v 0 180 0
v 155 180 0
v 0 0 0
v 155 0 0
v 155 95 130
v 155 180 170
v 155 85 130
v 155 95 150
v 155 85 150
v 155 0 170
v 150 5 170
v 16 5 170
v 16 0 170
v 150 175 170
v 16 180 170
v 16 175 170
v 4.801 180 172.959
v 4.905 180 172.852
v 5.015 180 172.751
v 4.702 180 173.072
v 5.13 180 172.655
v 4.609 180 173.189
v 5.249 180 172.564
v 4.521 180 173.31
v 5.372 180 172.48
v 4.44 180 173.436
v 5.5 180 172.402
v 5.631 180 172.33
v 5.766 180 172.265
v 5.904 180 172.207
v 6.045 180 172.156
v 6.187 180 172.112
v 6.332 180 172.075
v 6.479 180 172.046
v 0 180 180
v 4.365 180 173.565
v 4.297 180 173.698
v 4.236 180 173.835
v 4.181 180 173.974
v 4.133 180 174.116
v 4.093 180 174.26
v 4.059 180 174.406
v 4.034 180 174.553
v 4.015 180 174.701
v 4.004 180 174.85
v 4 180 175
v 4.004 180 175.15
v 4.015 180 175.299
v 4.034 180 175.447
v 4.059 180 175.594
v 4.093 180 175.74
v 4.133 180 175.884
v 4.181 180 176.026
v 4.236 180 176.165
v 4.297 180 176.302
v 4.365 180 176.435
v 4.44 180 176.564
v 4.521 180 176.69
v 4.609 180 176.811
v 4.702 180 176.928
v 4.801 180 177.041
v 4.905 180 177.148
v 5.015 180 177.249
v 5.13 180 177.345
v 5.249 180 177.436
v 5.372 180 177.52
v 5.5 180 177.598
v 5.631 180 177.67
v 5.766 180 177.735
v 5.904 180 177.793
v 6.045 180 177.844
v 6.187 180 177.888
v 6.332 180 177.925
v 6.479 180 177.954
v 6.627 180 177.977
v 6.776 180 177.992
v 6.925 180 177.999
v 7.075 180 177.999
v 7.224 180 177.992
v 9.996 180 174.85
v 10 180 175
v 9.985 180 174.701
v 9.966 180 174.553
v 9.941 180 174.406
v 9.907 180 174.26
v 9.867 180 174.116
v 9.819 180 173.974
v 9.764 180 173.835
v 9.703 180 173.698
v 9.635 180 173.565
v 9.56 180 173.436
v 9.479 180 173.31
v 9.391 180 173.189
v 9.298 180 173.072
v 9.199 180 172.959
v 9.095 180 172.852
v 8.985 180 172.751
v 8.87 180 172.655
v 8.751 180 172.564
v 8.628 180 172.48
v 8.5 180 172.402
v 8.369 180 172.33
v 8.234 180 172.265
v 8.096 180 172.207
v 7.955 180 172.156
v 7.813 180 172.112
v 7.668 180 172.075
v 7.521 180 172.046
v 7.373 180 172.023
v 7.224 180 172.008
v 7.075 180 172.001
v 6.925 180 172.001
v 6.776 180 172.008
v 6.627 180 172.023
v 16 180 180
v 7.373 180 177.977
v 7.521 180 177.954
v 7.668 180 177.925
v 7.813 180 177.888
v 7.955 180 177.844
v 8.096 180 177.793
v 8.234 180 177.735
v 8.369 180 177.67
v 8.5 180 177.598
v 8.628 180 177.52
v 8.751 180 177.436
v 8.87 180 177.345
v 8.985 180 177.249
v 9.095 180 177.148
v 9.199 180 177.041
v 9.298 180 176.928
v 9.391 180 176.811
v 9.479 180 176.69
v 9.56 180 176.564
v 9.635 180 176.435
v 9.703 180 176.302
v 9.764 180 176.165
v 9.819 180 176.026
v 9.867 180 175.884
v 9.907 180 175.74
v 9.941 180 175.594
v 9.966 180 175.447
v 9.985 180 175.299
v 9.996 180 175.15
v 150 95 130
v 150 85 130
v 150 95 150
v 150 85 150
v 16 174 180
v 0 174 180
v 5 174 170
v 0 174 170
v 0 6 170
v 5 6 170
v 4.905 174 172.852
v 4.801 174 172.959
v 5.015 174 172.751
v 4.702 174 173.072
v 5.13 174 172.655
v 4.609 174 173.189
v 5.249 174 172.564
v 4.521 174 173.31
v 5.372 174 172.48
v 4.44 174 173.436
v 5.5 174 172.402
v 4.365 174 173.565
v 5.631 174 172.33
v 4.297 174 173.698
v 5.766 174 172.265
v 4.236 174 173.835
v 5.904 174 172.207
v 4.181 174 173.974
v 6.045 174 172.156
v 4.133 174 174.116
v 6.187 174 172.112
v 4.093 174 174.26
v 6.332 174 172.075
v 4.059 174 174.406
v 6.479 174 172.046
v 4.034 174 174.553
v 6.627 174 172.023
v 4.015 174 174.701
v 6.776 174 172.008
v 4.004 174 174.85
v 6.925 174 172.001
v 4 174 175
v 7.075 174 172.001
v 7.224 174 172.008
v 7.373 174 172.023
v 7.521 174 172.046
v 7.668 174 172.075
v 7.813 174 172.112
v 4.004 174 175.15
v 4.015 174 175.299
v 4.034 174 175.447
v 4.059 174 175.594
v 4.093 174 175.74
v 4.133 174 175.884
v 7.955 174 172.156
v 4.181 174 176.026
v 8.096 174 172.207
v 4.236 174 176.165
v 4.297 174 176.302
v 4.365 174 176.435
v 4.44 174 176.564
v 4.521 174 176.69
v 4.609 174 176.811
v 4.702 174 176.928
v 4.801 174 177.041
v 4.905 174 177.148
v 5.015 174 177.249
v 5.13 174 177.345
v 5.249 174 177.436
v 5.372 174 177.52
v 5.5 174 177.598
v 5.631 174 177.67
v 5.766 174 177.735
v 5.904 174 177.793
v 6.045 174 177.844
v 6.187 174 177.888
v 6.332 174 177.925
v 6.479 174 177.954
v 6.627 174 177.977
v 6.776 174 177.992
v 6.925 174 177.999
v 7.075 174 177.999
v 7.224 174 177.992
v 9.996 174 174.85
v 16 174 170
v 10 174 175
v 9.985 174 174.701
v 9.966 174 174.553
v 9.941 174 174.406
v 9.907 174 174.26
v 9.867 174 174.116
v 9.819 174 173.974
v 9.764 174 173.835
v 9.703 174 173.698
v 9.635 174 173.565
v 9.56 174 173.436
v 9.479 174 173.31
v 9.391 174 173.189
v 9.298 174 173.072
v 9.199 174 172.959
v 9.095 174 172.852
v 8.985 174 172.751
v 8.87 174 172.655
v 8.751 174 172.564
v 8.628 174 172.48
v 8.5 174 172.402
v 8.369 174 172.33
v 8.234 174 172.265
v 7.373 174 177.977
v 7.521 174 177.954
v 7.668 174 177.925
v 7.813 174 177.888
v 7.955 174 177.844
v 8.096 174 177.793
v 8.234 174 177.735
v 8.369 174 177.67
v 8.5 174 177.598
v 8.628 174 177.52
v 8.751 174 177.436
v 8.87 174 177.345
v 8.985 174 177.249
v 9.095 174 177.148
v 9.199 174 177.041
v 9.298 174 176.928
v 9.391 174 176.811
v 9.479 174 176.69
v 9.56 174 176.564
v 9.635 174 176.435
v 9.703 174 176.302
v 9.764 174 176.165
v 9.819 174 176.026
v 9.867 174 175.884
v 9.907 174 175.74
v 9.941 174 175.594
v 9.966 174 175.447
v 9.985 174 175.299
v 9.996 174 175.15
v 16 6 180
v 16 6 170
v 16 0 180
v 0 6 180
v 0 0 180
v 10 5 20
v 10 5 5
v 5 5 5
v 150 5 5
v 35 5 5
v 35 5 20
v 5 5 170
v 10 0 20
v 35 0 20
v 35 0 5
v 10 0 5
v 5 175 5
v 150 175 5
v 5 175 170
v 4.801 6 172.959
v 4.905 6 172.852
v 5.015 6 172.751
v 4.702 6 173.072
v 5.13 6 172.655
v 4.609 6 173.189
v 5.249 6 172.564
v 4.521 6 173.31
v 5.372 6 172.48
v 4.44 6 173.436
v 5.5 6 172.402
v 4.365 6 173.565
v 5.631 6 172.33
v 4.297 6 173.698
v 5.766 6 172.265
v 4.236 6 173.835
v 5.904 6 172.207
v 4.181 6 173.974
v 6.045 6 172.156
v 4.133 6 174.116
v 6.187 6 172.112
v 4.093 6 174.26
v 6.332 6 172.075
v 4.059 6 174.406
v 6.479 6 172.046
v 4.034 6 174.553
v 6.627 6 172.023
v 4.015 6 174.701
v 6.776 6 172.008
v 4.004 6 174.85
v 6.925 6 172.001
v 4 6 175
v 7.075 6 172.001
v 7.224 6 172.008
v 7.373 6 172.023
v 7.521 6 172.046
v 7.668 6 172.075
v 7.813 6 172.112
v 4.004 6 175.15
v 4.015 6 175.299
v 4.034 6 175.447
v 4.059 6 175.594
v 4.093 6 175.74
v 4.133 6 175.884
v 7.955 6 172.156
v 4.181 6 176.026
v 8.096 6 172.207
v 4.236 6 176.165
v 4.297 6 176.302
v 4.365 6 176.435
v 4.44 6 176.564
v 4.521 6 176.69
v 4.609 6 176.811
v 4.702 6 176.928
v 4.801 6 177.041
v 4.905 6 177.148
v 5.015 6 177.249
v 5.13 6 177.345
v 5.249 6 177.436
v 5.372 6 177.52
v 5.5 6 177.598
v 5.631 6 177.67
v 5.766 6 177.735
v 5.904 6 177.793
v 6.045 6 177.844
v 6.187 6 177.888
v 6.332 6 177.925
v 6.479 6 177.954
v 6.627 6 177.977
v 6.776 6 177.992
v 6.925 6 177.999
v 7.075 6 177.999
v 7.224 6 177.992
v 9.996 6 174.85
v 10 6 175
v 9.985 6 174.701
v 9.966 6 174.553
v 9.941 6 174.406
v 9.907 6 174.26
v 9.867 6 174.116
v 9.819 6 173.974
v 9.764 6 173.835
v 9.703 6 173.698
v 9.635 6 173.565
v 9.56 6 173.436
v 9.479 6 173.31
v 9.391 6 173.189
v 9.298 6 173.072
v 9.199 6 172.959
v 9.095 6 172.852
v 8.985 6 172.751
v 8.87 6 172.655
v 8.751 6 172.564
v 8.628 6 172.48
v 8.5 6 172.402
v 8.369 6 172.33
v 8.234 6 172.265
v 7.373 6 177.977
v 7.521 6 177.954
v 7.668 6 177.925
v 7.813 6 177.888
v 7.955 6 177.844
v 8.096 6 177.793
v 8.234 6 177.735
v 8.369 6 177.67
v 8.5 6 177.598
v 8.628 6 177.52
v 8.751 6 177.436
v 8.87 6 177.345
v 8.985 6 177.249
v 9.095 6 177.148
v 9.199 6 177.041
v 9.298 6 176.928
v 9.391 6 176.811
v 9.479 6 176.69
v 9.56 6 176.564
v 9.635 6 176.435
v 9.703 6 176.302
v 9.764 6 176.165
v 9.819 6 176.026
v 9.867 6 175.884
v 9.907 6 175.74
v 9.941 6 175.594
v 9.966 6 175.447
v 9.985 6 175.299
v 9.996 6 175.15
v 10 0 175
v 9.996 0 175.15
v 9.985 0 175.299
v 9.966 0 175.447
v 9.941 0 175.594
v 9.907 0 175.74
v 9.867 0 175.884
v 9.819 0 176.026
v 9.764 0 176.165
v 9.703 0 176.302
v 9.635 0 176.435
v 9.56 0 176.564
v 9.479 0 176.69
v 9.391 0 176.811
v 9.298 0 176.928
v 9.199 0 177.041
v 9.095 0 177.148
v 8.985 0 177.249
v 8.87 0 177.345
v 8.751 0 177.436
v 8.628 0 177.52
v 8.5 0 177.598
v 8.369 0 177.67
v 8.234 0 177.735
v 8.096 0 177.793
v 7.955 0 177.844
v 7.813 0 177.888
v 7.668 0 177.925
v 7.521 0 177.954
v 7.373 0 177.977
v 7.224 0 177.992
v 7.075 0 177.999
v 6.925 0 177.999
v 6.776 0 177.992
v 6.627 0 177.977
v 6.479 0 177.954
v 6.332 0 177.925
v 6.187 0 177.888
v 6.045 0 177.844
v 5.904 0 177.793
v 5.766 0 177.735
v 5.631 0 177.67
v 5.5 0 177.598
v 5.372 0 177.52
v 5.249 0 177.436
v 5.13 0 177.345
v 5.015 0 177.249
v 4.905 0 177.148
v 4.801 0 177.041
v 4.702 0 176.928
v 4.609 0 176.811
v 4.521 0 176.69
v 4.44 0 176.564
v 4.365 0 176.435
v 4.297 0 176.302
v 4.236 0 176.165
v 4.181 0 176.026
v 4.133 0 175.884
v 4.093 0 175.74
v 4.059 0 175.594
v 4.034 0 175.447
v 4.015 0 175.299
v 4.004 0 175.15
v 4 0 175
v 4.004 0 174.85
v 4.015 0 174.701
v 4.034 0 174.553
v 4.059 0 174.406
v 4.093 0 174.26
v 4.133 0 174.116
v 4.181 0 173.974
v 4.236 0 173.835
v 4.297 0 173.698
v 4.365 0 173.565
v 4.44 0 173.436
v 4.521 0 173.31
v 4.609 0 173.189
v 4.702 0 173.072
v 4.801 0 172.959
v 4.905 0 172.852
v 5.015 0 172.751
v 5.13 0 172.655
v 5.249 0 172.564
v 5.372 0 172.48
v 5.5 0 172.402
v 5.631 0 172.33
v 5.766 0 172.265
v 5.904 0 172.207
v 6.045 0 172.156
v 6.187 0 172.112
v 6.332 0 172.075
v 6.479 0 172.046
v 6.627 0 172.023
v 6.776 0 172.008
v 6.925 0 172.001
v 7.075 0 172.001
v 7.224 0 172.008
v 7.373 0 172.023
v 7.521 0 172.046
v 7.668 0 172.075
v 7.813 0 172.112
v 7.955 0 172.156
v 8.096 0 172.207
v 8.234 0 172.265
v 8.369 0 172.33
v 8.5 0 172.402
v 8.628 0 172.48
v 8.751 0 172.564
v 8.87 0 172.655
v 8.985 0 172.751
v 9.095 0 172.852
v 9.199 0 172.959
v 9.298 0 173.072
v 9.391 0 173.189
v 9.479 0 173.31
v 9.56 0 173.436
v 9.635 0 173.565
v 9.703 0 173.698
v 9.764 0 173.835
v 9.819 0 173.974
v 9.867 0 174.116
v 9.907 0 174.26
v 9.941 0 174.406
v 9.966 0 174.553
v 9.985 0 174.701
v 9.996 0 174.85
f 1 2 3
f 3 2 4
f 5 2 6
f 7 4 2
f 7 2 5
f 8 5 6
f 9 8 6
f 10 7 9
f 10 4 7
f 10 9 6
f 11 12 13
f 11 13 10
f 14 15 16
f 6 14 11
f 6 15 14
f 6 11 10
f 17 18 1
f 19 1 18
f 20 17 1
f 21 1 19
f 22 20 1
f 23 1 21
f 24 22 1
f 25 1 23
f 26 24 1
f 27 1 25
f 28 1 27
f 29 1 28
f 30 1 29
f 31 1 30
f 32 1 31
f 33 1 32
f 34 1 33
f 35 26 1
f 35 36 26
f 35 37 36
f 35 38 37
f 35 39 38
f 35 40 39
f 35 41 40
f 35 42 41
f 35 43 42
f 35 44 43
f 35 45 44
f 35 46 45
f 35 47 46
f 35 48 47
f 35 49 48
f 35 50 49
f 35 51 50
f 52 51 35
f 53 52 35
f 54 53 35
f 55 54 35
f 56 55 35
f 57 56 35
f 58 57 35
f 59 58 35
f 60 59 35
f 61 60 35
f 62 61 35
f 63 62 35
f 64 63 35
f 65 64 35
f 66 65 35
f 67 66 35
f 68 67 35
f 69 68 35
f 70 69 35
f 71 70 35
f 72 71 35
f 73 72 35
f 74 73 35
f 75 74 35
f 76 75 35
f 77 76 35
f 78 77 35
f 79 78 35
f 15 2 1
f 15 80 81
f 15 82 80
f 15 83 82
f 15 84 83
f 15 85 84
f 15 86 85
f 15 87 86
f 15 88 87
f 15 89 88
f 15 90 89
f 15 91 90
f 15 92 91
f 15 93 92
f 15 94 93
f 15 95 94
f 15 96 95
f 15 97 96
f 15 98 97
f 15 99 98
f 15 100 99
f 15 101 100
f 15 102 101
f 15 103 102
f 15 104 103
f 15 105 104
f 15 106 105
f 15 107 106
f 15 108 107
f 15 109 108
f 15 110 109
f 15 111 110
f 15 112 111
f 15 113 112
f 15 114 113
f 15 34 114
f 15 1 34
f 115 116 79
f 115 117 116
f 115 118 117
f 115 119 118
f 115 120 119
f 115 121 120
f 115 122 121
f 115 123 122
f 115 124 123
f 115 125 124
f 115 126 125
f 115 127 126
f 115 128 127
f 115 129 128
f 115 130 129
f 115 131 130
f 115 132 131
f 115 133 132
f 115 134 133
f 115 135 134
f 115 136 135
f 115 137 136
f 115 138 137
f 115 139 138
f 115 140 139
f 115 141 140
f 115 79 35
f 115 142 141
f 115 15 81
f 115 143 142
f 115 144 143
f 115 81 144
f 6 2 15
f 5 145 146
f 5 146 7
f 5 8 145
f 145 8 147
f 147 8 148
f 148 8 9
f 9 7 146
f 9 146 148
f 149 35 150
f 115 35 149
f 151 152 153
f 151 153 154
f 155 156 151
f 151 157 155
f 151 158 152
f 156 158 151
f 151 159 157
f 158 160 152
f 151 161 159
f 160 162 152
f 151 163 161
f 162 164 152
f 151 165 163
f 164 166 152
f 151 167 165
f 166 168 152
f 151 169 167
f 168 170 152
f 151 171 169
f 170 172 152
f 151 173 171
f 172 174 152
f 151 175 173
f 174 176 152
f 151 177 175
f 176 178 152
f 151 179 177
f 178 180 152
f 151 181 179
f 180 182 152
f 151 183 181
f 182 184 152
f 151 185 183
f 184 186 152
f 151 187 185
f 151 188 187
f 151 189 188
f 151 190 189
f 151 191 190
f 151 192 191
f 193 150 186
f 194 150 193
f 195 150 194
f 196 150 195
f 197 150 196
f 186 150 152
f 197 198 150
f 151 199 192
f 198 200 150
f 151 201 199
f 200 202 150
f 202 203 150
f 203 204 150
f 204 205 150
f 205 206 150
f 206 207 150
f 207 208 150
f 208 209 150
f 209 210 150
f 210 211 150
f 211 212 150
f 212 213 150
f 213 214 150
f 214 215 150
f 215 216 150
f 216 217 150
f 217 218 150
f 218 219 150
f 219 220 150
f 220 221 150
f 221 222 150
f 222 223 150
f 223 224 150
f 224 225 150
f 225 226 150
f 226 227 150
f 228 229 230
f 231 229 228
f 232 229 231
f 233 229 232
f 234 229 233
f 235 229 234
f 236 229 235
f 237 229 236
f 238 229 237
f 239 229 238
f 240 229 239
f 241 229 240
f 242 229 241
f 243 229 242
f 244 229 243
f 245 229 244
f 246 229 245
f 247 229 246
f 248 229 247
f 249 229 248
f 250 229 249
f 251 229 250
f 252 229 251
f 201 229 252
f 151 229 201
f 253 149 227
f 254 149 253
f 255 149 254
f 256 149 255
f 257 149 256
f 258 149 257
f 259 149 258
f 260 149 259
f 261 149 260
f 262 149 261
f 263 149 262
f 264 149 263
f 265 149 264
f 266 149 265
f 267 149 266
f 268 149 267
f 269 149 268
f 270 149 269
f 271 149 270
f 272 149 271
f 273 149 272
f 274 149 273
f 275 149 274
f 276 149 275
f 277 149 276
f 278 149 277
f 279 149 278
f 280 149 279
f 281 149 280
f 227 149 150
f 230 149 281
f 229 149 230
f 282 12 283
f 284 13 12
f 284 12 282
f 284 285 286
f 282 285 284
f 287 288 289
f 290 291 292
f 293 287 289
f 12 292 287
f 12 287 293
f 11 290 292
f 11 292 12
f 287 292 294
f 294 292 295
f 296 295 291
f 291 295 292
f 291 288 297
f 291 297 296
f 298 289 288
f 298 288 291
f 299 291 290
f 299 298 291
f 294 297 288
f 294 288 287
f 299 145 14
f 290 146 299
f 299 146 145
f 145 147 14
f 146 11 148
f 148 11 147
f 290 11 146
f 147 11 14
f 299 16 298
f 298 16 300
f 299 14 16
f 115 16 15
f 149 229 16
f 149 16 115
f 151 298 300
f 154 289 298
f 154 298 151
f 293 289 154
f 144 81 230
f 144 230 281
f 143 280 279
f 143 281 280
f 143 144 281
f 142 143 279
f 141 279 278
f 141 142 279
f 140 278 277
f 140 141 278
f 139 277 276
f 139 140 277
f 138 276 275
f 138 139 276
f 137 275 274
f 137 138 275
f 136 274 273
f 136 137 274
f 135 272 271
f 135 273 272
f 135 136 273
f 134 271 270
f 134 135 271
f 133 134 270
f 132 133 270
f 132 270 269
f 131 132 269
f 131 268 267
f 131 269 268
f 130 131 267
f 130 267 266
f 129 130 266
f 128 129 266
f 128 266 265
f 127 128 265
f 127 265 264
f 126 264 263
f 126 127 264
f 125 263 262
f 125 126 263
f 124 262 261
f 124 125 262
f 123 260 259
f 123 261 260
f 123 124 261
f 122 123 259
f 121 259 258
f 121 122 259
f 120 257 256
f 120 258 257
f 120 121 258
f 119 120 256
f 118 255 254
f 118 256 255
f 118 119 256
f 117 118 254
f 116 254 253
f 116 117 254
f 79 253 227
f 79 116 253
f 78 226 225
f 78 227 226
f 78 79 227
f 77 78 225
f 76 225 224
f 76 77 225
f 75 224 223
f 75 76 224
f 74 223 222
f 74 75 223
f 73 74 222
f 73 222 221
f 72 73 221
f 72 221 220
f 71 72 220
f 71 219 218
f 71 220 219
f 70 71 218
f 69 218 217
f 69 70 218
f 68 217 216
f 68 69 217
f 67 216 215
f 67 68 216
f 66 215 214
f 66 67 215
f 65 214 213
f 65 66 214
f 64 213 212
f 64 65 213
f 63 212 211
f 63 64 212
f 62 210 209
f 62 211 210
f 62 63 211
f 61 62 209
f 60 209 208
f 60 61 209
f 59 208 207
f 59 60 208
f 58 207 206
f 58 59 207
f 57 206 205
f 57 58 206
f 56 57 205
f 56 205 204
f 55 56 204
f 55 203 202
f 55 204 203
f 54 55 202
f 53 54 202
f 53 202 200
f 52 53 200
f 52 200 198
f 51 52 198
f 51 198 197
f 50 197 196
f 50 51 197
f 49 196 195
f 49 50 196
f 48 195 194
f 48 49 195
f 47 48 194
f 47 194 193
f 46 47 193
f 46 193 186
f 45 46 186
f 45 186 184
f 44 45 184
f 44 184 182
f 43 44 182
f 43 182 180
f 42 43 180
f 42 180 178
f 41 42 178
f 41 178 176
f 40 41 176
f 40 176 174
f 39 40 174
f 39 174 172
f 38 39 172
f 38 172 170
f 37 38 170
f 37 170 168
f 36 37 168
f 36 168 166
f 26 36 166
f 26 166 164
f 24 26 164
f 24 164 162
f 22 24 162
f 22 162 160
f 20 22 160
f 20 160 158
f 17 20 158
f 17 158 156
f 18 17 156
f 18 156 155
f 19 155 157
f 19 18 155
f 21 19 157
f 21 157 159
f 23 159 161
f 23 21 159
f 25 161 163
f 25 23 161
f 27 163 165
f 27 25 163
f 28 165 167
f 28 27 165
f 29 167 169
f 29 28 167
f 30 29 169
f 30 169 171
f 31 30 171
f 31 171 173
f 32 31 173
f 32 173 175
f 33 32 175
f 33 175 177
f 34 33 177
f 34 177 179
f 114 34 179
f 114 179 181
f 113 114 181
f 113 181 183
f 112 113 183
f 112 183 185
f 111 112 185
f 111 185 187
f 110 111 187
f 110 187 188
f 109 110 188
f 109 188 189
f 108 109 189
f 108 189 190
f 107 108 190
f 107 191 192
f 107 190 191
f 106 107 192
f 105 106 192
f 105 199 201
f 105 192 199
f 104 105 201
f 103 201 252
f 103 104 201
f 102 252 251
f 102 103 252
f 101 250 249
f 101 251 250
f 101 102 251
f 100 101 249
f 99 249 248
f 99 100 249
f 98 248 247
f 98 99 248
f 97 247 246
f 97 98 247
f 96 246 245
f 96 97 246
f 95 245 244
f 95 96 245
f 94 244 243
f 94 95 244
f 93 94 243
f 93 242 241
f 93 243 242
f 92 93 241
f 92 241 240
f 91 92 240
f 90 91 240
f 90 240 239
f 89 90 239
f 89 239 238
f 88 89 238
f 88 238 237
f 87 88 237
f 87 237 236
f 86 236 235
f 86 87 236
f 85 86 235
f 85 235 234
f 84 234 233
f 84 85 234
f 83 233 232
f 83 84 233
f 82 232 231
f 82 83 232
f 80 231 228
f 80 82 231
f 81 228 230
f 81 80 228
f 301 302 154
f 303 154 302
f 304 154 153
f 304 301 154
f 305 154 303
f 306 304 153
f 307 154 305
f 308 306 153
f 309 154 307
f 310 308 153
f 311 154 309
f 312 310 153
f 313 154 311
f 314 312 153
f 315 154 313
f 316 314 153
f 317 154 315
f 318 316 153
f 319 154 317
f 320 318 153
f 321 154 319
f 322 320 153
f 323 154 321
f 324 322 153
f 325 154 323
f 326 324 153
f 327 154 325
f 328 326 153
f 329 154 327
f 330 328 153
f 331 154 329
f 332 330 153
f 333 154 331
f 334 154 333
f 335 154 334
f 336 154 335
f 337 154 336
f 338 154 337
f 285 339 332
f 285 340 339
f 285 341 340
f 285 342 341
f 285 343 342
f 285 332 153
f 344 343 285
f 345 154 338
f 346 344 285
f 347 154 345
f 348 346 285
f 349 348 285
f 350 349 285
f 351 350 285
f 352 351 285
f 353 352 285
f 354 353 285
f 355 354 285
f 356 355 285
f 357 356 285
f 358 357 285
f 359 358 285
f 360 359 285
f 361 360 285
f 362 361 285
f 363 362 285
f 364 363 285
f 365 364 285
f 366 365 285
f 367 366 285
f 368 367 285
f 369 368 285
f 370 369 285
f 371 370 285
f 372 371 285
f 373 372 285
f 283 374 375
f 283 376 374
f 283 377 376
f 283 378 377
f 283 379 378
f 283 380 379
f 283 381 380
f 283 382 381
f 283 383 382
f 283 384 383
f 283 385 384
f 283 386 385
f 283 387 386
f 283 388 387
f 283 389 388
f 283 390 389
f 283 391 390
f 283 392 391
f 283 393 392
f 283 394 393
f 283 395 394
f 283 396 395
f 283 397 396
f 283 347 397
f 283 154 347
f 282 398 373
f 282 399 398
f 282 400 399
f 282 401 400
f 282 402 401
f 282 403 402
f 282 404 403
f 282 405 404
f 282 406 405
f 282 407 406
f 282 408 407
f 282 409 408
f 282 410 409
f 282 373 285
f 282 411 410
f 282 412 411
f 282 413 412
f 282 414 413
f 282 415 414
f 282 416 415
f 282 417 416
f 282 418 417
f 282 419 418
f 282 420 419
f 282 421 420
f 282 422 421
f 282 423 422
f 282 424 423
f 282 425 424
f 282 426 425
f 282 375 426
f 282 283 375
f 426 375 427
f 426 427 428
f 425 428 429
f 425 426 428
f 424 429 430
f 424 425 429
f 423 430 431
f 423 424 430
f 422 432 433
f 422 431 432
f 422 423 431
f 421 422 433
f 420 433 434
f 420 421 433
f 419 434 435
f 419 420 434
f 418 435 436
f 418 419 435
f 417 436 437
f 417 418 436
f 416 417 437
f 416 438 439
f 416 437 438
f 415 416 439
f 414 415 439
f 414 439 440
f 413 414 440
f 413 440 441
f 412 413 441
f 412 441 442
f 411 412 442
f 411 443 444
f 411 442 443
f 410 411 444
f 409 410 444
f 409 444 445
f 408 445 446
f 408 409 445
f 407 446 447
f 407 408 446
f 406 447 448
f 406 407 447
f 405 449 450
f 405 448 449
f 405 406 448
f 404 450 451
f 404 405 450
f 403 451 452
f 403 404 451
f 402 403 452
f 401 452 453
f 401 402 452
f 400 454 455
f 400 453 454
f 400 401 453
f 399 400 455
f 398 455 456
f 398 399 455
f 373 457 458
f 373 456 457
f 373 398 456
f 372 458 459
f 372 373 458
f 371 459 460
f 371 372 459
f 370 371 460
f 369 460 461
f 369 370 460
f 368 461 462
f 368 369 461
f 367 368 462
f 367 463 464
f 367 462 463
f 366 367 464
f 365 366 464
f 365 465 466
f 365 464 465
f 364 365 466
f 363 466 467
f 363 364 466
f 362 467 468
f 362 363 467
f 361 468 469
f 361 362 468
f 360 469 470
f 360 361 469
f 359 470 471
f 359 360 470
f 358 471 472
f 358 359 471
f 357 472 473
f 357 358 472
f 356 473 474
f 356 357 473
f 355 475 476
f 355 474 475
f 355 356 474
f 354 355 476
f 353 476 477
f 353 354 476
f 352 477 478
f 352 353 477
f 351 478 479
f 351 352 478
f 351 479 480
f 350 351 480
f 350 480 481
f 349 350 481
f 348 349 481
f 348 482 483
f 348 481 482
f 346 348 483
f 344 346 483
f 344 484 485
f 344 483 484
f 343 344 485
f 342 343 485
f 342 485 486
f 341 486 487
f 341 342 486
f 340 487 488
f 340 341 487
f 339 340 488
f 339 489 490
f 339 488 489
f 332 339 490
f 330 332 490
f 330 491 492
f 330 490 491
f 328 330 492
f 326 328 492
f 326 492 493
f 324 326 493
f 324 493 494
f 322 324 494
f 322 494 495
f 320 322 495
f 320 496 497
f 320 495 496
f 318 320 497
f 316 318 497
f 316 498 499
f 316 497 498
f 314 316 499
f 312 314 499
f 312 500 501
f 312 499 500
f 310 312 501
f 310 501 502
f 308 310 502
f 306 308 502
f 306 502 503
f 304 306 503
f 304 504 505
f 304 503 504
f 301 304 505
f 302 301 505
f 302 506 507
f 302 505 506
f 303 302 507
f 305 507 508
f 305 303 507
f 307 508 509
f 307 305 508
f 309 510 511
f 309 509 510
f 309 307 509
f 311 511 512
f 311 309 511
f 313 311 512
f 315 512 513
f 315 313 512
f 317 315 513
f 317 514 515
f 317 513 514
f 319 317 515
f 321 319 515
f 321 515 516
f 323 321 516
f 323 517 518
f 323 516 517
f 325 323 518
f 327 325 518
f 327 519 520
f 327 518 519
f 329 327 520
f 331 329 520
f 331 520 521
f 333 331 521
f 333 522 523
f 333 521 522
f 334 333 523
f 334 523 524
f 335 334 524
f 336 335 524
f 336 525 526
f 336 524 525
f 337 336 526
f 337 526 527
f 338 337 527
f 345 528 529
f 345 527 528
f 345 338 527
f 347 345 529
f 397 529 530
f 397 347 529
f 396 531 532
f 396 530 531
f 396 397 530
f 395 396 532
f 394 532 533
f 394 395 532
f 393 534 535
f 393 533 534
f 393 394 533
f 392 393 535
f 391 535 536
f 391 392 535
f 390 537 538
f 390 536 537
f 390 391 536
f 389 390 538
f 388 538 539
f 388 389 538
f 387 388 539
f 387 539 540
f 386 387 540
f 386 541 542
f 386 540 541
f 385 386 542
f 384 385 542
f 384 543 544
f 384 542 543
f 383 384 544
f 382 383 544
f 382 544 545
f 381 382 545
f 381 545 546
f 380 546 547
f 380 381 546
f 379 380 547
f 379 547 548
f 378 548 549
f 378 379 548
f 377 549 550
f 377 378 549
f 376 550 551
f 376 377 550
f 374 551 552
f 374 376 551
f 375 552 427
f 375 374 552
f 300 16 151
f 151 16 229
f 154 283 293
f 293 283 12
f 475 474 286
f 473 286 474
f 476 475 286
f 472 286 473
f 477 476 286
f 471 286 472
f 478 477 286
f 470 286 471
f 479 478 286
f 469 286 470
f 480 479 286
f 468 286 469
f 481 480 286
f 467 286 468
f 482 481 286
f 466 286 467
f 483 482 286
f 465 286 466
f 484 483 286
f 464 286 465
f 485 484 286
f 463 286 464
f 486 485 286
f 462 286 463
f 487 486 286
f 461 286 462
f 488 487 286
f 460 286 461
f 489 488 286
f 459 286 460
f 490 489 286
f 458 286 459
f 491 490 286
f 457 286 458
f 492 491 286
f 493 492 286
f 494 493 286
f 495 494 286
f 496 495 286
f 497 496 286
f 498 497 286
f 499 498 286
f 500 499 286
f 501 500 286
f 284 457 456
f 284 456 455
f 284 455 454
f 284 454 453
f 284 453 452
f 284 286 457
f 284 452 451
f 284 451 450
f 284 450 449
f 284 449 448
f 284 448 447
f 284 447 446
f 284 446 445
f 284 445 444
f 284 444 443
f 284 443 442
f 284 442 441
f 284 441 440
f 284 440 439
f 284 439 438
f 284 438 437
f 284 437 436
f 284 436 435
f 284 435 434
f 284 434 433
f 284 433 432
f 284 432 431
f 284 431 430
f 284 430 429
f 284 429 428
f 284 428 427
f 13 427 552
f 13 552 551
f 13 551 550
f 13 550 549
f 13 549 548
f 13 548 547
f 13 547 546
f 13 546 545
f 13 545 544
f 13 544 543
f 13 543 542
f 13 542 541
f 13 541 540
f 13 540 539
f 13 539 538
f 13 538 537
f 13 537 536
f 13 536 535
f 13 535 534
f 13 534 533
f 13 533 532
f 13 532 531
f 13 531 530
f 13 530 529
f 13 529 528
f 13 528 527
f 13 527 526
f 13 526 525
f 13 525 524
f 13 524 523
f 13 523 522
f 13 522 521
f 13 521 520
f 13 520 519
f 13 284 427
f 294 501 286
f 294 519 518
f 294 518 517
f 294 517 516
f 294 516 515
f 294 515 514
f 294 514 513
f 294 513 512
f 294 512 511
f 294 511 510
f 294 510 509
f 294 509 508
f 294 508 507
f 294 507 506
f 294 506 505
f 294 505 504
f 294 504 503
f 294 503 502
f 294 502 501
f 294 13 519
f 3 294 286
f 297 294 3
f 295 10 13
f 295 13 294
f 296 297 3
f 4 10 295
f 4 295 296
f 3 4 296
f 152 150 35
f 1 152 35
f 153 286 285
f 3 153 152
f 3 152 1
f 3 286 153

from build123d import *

# Parameters (mm, degrees)
CYLINDER003_R     = 3
CYLINDER003_DEPTH = 148
BOX013_W          = 16
BOX013_H          = 6
BOX013_DEPTH      = 10
CYLINDER002_R     = 3
CYLINDER002_DEPTH = 148
BOX012_W          = 16
BOX012_H          = 6
BOX012_DEPTH      = 10
BOX011_W          = 12
BOX011_H          = 10
BOX011_DEPTH      = 20
BOX010_W          = 25
BOX010_H          = 25
BOX010_DEPTH      = 15
BOX009_W          = 145
BOX009_H          = 170
BOX009_DEPTH      = 200
BOX008_W          = 155
BOX008_H          = 180
BOX008_DEPTH      = 170


with BuildPart() as cylinder003:
    # Cylinder003 → Cylinder003 (new body)
    with BuildSketch(Plane(origin=(7, 139, 175), x_dir=(1, 0, 0), z_dir=(0, -1, 0))):
        Circle(CYLINDER003_R)
    extrude(amount=CYLINDER003_DEPTH)


with BuildPart() as visagra004:
    # Box013 → Box013 (new body)
    with BuildSketch(Plane.XY.offset(170)):
        with Locations((8, 3)):
            Rectangle(BOX013_W, BOX013_H)
    extrude(amount=BOX013_DEPTH)

    # Cut010: cut Cylinder003
    add(cylinder003.part, mode=Mode.SUBTRACT)


with BuildPart() as cylinder002:
    # Cylinder002 → Cylinder002 (new body)
    with BuildSketch(Plane(origin=(7, 192, 175), x_dir=(1, 0, 0), z_dir=(0, -1, 0))):
        Circle(CYLINDER002_R)
    extrude(amount=CYLINDER002_DEPTH)


with BuildPart() as visagra003:
    # Box012 → Box012 (new body)
    with BuildSketch(Plane(origin=(0, 174, 170), x_dir=(1, 0, 0), z_dir=(0, 0, 1))):
        with Locations((8, 3)):
            Rectangle(BOX012_W, BOX012_H)
    extrude(amount=BOX012_DEPTH)

    # Cut009: cut Cylinder002
    add(cylinder002.part, mode=Mode.SUBTRACT)


with BuildPart() as cube006:
    # Box011 → Box011 (new body)
    with BuildSketch(Plane(origin=(146, 85, 130), x_dir=(1, 0, 0), z_dir=(0, 0, 1))):
        with Locations((6, 5)):
            Rectangle(BOX011_W, BOX011_H)
    extrude(amount=BOX011_DEPTH)


with BuildPart() as agujero001:
    # Box010 → Box010 (new body)
    with BuildSketch(Plane(origin=(10, -7, 5), x_dir=(1, 0, 0), z_dir=(0, 0, 1))):
        with Locations((12.5, 12.5)):
            Rectangle(BOX010_W, BOX010_H)
    extrude(amount=BOX010_DEPTH)


with BuildPart() as cube005:
    # Box009 → Box009 (new body)
    with BuildSketch(Plane(origin=(5, 5, 5), x_dir=(1, 0, 0), z_dir=(0, 0, 1))):
        with Locations((72.5, 85)):
            Rectangle(BOX009_W, BOX009_H)
    extrude(amount=BOX009_DEPTH)


with BuildPart() as caja002:
    # Box008 → Box008 (new body)
    with BuildSketch(Plane.XY):
        with Locations((77.5, 90)):
            Rectangle(BOX008_W, BOX008_H)
    extrude(amount=BOX008_DEPTH)

    # Cut006: cut Cube005
    add(cube005.part, mode=Mode.SUBTRACT)

    # Cut007: cut Agujero001
    add(agujero001.part, mode=Mode.SUBTRACT)

    # Cut008: cut Cube006
    add(cube006.part, mode=Mode.SUBTRACT)

    # Fusion003: union visagra003
    add(visagra003.part)

    # Fusion004: union visagra004
    add(visagra004.part)


solid = caja002.part
